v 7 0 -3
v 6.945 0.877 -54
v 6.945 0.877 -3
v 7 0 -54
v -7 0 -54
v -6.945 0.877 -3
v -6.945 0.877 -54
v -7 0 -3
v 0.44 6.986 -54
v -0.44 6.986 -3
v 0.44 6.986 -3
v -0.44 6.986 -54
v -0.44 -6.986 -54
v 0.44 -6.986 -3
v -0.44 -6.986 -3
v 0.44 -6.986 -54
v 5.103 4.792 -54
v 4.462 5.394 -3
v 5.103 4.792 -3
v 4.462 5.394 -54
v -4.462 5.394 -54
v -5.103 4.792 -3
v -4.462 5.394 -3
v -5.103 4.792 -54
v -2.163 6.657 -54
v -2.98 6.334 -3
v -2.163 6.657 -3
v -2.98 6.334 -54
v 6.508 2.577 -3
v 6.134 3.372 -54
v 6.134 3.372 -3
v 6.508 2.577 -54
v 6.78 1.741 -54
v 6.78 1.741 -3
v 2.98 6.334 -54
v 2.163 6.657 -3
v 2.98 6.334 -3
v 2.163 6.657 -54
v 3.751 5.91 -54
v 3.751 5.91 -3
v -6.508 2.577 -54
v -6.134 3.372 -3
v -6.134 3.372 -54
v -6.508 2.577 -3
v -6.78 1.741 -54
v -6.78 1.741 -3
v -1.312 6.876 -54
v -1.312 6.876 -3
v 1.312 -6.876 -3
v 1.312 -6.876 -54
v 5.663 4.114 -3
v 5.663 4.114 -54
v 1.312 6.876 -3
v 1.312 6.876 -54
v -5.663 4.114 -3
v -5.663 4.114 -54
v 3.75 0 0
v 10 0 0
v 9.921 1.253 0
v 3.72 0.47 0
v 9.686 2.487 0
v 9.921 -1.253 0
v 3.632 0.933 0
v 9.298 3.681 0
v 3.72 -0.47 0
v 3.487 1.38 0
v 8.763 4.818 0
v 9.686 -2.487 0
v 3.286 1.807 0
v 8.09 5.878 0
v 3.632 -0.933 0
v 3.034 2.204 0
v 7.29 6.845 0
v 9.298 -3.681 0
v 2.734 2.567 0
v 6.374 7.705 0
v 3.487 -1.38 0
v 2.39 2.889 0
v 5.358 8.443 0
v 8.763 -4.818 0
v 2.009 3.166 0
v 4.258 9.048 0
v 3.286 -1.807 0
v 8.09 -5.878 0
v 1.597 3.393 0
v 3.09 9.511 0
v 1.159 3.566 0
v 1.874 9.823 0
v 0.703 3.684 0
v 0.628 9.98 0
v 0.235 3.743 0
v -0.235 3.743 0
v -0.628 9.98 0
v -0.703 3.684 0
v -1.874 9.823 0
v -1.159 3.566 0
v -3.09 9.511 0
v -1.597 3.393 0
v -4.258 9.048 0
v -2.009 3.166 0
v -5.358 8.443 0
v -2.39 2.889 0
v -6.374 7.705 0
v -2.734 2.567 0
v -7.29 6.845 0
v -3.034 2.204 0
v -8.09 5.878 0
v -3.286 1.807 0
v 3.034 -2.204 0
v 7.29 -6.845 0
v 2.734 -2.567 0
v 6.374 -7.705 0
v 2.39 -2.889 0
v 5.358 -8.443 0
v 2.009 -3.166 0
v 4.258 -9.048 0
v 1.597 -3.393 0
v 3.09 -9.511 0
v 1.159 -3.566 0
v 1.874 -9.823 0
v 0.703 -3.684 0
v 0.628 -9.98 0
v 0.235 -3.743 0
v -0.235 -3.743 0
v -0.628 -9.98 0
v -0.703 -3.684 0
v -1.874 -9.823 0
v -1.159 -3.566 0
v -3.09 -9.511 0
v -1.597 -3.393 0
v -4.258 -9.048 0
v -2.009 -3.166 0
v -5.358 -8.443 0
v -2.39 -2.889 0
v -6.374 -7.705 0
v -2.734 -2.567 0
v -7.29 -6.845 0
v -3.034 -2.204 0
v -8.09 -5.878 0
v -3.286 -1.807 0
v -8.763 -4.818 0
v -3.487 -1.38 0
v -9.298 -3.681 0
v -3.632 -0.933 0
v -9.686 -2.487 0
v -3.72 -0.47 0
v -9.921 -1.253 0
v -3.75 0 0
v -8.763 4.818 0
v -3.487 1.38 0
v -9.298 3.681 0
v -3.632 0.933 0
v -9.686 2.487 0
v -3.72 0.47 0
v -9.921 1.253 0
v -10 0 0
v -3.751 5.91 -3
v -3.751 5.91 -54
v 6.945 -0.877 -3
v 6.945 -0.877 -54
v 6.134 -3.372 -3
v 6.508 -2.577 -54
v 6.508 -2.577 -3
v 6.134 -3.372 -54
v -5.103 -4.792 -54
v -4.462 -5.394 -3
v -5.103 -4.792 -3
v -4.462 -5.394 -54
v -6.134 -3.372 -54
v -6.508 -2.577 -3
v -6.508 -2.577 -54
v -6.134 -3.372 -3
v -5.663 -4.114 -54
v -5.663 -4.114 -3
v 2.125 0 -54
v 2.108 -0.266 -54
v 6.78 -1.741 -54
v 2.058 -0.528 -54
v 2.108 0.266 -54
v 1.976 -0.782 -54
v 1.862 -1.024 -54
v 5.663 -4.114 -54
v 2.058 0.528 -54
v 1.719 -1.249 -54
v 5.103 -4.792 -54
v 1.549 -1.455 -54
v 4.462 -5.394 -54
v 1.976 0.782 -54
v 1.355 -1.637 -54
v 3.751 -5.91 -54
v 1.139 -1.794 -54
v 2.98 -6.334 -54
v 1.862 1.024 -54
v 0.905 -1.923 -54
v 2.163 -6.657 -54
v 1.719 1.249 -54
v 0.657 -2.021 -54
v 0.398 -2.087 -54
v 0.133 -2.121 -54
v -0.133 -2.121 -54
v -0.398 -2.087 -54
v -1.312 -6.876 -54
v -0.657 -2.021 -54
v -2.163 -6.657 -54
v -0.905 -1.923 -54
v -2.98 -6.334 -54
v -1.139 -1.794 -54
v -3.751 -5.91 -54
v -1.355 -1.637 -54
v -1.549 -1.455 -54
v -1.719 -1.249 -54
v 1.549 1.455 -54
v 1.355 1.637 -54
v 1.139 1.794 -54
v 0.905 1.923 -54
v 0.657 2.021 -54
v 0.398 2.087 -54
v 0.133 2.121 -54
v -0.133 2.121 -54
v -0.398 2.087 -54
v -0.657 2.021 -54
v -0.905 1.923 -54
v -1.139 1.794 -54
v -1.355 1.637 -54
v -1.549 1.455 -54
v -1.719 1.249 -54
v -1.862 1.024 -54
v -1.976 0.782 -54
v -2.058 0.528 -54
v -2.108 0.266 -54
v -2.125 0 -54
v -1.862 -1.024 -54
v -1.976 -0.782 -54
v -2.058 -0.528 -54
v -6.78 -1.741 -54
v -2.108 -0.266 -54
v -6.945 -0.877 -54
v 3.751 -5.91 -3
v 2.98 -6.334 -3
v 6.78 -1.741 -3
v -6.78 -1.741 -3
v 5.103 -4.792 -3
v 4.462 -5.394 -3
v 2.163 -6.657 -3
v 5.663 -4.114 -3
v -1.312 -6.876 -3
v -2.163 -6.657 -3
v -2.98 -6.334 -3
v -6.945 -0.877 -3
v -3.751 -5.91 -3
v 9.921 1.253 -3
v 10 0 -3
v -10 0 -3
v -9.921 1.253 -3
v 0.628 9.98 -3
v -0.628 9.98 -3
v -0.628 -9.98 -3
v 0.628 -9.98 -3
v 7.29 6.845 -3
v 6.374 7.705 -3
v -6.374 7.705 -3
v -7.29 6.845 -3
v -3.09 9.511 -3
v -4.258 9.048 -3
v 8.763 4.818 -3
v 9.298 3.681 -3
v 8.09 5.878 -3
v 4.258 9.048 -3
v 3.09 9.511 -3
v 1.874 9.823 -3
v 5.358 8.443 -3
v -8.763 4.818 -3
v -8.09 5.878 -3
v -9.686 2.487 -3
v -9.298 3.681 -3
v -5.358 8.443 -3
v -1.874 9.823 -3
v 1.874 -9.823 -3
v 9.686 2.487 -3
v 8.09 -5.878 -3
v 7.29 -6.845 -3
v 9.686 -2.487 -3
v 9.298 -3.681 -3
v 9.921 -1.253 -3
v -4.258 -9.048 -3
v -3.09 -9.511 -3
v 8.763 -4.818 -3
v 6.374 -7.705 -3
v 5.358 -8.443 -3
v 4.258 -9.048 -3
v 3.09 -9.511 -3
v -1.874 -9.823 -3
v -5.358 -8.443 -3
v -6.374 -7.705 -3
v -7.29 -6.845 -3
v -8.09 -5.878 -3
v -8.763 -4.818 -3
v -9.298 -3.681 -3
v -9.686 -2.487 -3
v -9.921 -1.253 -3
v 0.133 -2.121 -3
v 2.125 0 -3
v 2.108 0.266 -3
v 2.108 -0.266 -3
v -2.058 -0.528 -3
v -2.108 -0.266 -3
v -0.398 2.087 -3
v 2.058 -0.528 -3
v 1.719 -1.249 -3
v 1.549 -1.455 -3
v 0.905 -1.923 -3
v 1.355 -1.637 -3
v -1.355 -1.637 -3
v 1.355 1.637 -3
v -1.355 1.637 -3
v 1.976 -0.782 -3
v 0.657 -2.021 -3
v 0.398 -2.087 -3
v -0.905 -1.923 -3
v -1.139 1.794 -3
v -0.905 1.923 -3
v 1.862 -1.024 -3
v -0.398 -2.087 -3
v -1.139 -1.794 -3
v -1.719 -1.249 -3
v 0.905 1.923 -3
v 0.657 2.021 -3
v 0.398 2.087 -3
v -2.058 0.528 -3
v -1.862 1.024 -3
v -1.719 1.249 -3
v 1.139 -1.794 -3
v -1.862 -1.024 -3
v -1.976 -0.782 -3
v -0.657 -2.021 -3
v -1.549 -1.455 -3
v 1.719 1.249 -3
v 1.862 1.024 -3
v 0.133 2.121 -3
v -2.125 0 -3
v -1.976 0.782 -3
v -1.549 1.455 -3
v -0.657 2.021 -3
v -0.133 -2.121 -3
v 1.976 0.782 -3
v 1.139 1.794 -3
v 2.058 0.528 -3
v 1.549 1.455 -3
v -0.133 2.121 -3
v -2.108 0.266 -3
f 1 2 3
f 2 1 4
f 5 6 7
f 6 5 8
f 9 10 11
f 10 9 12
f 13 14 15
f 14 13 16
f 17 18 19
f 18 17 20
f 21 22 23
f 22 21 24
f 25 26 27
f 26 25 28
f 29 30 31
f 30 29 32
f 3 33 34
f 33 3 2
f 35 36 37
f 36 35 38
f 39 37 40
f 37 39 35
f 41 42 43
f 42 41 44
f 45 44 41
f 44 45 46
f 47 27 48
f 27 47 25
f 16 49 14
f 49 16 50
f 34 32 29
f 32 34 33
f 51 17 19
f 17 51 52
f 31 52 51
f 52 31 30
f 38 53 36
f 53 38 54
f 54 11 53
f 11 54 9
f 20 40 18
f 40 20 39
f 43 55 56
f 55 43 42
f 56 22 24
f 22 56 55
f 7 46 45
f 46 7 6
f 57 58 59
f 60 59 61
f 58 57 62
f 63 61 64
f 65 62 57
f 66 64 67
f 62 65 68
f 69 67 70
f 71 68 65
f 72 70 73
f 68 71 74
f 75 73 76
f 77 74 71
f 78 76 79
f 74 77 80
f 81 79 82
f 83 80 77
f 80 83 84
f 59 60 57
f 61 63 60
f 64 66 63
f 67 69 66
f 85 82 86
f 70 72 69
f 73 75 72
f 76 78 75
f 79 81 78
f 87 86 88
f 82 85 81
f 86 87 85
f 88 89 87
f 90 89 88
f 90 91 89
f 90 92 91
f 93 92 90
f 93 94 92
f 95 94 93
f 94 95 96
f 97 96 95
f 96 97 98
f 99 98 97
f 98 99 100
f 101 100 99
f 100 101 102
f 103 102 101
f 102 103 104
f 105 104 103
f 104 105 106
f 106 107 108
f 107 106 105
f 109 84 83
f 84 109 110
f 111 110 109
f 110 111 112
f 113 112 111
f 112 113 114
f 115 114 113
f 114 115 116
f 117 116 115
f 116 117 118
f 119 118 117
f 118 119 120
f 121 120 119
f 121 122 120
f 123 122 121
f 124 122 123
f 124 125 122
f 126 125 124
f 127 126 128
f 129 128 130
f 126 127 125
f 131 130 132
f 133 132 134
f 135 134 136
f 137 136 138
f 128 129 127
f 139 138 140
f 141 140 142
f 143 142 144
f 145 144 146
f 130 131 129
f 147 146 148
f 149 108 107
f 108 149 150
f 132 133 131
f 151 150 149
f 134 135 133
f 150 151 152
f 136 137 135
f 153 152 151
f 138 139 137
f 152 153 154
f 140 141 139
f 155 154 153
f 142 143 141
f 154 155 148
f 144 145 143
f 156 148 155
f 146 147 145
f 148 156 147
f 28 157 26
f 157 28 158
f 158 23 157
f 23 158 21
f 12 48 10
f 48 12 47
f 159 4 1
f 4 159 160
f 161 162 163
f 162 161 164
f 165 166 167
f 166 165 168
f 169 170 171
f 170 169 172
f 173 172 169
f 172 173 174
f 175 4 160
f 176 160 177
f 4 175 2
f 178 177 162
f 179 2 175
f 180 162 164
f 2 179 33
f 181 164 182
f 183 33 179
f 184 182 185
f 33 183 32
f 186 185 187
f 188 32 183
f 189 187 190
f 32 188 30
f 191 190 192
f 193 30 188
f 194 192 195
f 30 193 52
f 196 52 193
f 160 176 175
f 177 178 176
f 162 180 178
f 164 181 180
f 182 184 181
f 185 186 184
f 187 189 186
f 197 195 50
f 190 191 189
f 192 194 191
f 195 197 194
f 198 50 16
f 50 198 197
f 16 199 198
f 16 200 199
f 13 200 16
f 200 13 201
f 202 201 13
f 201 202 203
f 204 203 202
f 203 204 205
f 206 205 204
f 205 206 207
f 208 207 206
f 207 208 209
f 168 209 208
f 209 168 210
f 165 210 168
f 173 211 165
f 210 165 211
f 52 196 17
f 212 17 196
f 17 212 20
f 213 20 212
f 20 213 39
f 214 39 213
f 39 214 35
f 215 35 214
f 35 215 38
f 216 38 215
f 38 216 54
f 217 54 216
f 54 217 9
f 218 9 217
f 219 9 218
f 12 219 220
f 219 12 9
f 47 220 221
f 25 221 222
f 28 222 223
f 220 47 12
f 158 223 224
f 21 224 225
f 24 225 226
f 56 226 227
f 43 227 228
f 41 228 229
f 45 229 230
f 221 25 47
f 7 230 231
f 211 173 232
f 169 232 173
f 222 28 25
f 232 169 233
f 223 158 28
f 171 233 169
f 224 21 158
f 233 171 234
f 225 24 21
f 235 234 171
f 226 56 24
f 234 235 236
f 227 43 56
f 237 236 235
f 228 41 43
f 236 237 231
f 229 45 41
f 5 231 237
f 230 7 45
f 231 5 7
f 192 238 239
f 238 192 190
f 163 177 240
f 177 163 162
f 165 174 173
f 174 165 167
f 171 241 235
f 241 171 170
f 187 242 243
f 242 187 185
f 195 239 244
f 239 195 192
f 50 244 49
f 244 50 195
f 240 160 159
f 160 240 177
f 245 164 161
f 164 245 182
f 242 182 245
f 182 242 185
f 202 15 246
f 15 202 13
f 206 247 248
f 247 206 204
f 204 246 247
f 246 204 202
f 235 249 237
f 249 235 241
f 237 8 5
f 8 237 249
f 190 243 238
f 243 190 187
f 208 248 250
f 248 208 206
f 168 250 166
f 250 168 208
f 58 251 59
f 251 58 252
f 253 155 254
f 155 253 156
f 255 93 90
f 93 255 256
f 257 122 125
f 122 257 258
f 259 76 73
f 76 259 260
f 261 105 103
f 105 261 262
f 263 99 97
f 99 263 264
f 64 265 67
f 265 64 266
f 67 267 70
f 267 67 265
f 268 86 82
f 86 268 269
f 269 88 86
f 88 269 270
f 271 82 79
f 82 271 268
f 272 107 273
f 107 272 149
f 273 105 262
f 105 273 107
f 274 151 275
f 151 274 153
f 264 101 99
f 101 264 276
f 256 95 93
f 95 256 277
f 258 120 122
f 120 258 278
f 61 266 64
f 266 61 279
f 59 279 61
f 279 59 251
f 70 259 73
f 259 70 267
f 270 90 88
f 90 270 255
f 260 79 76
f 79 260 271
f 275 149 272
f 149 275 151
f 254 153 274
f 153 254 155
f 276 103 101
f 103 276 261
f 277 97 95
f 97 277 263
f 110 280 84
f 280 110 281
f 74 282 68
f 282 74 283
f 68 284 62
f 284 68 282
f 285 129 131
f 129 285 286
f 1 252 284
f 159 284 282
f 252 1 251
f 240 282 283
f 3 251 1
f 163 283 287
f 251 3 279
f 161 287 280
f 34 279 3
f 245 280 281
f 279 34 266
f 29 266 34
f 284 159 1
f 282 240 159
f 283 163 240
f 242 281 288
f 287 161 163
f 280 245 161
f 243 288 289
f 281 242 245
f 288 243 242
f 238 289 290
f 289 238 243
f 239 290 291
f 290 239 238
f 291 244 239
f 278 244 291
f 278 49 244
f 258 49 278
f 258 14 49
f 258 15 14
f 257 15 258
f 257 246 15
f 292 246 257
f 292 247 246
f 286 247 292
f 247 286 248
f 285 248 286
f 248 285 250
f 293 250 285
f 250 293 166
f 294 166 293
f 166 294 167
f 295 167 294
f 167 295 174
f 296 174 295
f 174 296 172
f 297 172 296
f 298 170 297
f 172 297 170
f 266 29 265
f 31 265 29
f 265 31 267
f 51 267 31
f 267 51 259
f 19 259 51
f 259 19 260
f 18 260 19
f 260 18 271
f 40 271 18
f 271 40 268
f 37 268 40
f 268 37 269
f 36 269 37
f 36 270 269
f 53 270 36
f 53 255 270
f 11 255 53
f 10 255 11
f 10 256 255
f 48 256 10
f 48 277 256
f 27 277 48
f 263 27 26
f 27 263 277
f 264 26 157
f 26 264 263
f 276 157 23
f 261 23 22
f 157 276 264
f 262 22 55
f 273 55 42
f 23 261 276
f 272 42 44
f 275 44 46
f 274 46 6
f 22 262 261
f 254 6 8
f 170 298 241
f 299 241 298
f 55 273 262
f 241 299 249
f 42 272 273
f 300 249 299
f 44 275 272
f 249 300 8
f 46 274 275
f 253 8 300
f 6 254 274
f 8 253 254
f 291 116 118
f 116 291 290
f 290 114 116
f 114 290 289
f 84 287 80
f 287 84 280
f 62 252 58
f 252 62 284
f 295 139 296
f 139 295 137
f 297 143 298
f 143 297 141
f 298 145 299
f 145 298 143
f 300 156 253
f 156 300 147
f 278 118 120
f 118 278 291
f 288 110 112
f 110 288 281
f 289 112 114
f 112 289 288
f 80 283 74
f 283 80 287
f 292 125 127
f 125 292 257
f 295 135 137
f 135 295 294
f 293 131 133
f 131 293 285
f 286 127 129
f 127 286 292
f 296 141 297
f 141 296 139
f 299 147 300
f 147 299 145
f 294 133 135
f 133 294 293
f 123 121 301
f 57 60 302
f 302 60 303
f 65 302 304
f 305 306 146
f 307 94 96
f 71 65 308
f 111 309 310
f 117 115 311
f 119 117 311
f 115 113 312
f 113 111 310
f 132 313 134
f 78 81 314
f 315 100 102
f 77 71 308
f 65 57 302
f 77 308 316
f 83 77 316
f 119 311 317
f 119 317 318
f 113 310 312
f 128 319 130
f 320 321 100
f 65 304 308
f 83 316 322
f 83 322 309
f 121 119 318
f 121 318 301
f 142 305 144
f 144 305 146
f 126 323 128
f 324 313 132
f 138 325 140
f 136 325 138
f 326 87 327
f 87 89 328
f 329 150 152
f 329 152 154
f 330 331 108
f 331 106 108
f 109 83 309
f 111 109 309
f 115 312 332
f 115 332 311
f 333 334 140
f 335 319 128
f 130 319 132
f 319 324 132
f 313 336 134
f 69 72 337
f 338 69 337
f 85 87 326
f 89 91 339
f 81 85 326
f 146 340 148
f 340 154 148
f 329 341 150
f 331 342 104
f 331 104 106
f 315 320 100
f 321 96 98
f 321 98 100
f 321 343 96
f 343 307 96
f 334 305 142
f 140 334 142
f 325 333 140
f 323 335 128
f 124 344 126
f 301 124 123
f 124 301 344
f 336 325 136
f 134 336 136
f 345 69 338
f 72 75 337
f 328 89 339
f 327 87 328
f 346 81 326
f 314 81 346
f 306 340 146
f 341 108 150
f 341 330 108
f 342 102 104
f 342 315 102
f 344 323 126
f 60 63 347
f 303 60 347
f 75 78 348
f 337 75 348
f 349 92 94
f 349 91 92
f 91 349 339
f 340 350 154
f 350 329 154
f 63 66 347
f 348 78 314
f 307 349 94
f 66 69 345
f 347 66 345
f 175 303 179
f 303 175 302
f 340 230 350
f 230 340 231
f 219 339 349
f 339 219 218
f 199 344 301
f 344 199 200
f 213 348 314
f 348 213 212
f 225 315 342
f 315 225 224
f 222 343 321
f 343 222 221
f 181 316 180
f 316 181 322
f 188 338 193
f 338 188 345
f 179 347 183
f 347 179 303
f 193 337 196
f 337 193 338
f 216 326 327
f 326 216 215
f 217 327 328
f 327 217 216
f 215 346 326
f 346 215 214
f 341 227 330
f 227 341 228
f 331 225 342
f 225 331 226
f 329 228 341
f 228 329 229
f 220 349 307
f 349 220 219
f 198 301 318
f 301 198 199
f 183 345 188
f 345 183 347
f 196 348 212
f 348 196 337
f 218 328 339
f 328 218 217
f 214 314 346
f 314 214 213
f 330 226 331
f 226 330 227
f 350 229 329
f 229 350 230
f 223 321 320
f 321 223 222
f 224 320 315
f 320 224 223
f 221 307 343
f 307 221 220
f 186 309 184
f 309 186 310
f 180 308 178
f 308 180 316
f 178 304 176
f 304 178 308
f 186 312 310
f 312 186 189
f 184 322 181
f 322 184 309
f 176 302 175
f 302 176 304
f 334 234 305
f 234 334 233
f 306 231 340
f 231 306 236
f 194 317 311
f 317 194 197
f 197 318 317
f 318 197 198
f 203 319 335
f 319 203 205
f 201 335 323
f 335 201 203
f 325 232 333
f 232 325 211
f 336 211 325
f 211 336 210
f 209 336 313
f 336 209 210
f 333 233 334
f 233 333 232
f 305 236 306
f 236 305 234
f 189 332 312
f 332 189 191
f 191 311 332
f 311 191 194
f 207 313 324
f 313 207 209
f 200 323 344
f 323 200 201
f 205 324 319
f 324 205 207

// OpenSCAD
$fn = 50;


difference() {
	union() {
		translate(v = [0, 0, -54.0000000000]) {
			cylinder(h = 54, r = 7.0000000000);
		}
		translate(v = [0, 0, -3.0000000000]) {
			cylinder(h = 3, r = 10.0000000000);
		}
	}
	union() {
		translate(v = [0, 0, 0]) {
			rotate(a = [0, 0, 0]) {
				difference() {
					union() {
						#translate(v = [0, 0, -54.0000000000]) {
							cylinder(h = 54, r = 2.0000000000);
						}
						#translate(v = [0, 0, -3]) {
							cylinder(h = 3, r1 = 2.1250000000, r2 = 3.7500000000);
						}
						#translate(v = [0, 0, -54.0000000000]) {
							cylinder(h = 54, r = 2.1250000000);
						}
						#translate(v = [0, 0, -54.0000000000]) {
							cylinder(h = 54, r = 2.0000000000);
						}
					}
					union();
				}
			}
		}
	}
}
